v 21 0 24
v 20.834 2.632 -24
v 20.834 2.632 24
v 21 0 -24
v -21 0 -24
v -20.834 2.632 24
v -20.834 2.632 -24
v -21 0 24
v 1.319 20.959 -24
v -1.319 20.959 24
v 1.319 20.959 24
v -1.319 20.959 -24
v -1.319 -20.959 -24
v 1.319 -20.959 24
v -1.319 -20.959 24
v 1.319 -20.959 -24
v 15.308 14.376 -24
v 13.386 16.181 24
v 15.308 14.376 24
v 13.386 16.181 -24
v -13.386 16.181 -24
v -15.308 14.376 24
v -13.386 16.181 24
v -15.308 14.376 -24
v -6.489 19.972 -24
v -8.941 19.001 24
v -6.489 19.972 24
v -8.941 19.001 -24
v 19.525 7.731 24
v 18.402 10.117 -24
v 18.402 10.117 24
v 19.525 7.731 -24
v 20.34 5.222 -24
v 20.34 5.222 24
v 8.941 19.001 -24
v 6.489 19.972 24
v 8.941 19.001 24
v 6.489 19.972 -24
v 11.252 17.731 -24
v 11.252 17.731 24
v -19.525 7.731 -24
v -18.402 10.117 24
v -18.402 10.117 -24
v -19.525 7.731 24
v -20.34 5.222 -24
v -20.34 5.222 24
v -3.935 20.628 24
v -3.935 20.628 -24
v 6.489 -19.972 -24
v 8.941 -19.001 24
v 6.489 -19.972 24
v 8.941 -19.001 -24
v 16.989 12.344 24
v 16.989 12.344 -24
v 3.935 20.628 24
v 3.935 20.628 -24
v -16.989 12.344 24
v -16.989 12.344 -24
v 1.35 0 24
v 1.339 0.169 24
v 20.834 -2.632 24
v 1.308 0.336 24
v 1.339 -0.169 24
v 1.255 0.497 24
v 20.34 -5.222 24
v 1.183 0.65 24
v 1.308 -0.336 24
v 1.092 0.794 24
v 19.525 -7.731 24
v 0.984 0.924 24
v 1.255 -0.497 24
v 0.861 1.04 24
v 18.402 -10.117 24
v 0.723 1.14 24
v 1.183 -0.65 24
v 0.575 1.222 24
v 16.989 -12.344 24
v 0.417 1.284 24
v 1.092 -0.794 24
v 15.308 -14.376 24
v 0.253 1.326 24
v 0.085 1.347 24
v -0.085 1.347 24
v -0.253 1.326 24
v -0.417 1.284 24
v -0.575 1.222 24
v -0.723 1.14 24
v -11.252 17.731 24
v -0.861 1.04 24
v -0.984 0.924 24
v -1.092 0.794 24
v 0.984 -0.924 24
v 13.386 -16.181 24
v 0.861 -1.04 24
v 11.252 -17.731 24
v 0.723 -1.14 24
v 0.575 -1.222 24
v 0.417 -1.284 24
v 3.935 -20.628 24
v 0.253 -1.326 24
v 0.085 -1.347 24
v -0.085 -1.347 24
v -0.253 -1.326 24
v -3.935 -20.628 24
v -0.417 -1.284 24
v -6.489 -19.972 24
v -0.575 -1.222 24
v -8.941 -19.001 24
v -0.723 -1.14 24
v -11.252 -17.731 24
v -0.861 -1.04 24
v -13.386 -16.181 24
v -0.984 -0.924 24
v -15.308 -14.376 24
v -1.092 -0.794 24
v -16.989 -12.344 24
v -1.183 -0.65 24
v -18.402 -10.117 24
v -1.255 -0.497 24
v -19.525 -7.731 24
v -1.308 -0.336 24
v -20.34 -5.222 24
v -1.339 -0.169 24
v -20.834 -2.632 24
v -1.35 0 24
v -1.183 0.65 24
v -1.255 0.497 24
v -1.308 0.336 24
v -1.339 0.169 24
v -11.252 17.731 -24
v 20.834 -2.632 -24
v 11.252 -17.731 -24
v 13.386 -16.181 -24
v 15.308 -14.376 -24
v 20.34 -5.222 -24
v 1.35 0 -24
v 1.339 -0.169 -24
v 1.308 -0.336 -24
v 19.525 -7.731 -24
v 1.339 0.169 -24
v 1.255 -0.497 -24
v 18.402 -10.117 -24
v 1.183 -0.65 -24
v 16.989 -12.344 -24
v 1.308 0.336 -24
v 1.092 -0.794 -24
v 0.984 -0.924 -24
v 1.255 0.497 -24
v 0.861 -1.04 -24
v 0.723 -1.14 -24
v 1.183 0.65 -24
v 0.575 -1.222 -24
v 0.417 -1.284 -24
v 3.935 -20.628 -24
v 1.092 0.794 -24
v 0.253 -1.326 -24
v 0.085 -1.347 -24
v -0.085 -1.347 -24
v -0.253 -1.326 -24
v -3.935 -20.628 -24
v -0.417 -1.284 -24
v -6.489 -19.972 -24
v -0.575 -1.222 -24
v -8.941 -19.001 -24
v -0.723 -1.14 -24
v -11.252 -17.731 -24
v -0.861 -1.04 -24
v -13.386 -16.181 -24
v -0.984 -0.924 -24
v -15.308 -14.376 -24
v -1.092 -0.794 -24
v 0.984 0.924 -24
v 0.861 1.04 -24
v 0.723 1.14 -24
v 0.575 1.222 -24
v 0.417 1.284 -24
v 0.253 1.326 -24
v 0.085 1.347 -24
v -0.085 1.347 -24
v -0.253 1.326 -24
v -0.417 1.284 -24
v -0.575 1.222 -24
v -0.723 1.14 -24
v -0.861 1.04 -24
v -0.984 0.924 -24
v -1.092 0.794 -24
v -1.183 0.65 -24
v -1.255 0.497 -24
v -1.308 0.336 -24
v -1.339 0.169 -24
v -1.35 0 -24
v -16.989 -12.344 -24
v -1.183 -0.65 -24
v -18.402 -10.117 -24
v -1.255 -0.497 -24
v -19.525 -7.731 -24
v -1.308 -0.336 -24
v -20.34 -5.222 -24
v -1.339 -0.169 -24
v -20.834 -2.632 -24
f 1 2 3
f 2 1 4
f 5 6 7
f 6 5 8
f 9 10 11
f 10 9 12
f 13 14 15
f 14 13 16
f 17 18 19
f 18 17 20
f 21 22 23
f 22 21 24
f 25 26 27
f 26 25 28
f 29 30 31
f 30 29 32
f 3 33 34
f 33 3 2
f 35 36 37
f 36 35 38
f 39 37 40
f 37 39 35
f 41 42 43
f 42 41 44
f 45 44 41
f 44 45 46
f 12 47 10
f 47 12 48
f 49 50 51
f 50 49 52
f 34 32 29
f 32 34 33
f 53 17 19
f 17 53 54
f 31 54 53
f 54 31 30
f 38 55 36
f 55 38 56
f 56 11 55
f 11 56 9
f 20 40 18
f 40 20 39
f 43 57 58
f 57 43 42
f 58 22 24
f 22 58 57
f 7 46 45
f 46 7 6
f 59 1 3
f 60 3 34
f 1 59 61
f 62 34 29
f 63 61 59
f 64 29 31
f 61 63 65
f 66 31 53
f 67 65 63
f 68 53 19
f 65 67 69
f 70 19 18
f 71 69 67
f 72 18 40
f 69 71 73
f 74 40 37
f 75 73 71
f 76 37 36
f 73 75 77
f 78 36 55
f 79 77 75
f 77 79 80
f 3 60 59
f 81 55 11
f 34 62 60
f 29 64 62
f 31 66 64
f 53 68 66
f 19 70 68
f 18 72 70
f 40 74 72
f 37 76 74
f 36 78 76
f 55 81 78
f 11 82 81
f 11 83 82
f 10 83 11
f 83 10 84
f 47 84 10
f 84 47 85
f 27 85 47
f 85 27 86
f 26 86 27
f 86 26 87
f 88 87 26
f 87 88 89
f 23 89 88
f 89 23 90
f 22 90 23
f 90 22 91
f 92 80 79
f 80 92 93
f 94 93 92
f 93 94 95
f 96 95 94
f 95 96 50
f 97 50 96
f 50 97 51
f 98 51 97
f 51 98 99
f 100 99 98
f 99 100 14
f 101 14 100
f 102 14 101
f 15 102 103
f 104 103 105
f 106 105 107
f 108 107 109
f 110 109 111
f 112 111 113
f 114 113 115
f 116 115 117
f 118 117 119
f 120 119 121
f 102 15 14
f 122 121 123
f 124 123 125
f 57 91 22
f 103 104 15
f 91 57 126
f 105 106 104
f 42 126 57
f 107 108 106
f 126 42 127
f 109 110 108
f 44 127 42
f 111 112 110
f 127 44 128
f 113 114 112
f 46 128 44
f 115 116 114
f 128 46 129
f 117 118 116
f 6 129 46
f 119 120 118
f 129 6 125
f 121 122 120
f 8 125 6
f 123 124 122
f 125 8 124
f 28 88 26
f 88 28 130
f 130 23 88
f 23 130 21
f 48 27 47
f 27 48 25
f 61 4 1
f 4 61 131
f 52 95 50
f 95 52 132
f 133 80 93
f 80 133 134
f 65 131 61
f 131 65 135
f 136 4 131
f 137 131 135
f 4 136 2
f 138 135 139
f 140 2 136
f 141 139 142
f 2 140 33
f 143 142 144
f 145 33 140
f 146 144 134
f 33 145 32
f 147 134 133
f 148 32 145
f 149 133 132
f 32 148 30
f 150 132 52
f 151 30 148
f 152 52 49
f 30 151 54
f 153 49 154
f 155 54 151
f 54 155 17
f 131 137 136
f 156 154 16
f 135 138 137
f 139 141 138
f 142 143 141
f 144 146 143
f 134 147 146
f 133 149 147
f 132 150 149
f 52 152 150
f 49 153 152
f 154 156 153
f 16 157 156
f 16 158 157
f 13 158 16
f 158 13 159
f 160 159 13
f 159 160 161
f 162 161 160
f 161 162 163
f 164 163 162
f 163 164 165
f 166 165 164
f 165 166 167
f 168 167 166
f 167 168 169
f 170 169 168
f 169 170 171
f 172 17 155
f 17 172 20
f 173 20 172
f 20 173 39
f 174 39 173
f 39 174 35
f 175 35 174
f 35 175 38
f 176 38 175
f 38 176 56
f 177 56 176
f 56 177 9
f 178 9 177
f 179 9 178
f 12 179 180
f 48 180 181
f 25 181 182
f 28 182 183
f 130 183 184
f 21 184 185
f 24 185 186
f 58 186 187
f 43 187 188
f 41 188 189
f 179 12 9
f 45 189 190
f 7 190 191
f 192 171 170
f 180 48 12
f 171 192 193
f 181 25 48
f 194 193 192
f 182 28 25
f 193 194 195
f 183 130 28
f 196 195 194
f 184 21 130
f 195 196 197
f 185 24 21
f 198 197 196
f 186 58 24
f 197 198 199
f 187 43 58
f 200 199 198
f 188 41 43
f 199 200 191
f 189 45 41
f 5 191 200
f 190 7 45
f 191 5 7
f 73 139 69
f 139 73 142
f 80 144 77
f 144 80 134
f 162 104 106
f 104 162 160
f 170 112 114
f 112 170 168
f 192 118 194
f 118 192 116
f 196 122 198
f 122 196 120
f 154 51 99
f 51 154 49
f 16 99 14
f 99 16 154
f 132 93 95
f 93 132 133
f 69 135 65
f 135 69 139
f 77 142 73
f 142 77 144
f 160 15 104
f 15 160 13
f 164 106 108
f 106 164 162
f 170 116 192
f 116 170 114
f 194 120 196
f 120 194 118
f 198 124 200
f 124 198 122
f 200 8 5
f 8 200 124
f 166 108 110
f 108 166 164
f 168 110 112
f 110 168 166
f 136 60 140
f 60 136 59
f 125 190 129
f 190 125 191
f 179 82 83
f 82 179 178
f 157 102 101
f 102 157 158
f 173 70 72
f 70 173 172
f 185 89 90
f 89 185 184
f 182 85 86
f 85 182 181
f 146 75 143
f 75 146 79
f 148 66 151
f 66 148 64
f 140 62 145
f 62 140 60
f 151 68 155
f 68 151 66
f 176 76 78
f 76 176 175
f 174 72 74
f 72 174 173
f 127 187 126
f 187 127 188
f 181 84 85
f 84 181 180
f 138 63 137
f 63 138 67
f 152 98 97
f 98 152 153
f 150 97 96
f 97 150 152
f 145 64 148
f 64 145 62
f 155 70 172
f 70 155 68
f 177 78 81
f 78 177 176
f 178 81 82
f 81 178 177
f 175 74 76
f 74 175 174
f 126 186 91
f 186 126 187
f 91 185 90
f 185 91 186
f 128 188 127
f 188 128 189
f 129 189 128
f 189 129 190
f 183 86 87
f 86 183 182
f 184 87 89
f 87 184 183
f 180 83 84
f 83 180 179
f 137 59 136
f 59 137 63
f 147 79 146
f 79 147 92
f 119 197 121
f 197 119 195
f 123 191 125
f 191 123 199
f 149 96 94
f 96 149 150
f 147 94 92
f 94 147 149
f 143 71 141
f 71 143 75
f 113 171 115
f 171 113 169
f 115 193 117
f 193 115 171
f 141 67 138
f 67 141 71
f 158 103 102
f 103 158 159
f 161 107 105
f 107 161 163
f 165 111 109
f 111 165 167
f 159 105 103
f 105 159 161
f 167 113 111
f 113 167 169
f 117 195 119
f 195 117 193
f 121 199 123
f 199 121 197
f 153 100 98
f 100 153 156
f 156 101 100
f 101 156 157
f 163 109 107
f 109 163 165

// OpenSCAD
$fn = 50;


difference() {
	union() {
		translate(v = [0, 0, -24.0000000000]) {
			cylinder(h = 48, r = 21.0000000000);
		}
	}
	union() {
		translate(v = [0, 0, -100.0000000000]) {
			cylinder(h = 200, r = 1.3500000000);
		}
	}
}
